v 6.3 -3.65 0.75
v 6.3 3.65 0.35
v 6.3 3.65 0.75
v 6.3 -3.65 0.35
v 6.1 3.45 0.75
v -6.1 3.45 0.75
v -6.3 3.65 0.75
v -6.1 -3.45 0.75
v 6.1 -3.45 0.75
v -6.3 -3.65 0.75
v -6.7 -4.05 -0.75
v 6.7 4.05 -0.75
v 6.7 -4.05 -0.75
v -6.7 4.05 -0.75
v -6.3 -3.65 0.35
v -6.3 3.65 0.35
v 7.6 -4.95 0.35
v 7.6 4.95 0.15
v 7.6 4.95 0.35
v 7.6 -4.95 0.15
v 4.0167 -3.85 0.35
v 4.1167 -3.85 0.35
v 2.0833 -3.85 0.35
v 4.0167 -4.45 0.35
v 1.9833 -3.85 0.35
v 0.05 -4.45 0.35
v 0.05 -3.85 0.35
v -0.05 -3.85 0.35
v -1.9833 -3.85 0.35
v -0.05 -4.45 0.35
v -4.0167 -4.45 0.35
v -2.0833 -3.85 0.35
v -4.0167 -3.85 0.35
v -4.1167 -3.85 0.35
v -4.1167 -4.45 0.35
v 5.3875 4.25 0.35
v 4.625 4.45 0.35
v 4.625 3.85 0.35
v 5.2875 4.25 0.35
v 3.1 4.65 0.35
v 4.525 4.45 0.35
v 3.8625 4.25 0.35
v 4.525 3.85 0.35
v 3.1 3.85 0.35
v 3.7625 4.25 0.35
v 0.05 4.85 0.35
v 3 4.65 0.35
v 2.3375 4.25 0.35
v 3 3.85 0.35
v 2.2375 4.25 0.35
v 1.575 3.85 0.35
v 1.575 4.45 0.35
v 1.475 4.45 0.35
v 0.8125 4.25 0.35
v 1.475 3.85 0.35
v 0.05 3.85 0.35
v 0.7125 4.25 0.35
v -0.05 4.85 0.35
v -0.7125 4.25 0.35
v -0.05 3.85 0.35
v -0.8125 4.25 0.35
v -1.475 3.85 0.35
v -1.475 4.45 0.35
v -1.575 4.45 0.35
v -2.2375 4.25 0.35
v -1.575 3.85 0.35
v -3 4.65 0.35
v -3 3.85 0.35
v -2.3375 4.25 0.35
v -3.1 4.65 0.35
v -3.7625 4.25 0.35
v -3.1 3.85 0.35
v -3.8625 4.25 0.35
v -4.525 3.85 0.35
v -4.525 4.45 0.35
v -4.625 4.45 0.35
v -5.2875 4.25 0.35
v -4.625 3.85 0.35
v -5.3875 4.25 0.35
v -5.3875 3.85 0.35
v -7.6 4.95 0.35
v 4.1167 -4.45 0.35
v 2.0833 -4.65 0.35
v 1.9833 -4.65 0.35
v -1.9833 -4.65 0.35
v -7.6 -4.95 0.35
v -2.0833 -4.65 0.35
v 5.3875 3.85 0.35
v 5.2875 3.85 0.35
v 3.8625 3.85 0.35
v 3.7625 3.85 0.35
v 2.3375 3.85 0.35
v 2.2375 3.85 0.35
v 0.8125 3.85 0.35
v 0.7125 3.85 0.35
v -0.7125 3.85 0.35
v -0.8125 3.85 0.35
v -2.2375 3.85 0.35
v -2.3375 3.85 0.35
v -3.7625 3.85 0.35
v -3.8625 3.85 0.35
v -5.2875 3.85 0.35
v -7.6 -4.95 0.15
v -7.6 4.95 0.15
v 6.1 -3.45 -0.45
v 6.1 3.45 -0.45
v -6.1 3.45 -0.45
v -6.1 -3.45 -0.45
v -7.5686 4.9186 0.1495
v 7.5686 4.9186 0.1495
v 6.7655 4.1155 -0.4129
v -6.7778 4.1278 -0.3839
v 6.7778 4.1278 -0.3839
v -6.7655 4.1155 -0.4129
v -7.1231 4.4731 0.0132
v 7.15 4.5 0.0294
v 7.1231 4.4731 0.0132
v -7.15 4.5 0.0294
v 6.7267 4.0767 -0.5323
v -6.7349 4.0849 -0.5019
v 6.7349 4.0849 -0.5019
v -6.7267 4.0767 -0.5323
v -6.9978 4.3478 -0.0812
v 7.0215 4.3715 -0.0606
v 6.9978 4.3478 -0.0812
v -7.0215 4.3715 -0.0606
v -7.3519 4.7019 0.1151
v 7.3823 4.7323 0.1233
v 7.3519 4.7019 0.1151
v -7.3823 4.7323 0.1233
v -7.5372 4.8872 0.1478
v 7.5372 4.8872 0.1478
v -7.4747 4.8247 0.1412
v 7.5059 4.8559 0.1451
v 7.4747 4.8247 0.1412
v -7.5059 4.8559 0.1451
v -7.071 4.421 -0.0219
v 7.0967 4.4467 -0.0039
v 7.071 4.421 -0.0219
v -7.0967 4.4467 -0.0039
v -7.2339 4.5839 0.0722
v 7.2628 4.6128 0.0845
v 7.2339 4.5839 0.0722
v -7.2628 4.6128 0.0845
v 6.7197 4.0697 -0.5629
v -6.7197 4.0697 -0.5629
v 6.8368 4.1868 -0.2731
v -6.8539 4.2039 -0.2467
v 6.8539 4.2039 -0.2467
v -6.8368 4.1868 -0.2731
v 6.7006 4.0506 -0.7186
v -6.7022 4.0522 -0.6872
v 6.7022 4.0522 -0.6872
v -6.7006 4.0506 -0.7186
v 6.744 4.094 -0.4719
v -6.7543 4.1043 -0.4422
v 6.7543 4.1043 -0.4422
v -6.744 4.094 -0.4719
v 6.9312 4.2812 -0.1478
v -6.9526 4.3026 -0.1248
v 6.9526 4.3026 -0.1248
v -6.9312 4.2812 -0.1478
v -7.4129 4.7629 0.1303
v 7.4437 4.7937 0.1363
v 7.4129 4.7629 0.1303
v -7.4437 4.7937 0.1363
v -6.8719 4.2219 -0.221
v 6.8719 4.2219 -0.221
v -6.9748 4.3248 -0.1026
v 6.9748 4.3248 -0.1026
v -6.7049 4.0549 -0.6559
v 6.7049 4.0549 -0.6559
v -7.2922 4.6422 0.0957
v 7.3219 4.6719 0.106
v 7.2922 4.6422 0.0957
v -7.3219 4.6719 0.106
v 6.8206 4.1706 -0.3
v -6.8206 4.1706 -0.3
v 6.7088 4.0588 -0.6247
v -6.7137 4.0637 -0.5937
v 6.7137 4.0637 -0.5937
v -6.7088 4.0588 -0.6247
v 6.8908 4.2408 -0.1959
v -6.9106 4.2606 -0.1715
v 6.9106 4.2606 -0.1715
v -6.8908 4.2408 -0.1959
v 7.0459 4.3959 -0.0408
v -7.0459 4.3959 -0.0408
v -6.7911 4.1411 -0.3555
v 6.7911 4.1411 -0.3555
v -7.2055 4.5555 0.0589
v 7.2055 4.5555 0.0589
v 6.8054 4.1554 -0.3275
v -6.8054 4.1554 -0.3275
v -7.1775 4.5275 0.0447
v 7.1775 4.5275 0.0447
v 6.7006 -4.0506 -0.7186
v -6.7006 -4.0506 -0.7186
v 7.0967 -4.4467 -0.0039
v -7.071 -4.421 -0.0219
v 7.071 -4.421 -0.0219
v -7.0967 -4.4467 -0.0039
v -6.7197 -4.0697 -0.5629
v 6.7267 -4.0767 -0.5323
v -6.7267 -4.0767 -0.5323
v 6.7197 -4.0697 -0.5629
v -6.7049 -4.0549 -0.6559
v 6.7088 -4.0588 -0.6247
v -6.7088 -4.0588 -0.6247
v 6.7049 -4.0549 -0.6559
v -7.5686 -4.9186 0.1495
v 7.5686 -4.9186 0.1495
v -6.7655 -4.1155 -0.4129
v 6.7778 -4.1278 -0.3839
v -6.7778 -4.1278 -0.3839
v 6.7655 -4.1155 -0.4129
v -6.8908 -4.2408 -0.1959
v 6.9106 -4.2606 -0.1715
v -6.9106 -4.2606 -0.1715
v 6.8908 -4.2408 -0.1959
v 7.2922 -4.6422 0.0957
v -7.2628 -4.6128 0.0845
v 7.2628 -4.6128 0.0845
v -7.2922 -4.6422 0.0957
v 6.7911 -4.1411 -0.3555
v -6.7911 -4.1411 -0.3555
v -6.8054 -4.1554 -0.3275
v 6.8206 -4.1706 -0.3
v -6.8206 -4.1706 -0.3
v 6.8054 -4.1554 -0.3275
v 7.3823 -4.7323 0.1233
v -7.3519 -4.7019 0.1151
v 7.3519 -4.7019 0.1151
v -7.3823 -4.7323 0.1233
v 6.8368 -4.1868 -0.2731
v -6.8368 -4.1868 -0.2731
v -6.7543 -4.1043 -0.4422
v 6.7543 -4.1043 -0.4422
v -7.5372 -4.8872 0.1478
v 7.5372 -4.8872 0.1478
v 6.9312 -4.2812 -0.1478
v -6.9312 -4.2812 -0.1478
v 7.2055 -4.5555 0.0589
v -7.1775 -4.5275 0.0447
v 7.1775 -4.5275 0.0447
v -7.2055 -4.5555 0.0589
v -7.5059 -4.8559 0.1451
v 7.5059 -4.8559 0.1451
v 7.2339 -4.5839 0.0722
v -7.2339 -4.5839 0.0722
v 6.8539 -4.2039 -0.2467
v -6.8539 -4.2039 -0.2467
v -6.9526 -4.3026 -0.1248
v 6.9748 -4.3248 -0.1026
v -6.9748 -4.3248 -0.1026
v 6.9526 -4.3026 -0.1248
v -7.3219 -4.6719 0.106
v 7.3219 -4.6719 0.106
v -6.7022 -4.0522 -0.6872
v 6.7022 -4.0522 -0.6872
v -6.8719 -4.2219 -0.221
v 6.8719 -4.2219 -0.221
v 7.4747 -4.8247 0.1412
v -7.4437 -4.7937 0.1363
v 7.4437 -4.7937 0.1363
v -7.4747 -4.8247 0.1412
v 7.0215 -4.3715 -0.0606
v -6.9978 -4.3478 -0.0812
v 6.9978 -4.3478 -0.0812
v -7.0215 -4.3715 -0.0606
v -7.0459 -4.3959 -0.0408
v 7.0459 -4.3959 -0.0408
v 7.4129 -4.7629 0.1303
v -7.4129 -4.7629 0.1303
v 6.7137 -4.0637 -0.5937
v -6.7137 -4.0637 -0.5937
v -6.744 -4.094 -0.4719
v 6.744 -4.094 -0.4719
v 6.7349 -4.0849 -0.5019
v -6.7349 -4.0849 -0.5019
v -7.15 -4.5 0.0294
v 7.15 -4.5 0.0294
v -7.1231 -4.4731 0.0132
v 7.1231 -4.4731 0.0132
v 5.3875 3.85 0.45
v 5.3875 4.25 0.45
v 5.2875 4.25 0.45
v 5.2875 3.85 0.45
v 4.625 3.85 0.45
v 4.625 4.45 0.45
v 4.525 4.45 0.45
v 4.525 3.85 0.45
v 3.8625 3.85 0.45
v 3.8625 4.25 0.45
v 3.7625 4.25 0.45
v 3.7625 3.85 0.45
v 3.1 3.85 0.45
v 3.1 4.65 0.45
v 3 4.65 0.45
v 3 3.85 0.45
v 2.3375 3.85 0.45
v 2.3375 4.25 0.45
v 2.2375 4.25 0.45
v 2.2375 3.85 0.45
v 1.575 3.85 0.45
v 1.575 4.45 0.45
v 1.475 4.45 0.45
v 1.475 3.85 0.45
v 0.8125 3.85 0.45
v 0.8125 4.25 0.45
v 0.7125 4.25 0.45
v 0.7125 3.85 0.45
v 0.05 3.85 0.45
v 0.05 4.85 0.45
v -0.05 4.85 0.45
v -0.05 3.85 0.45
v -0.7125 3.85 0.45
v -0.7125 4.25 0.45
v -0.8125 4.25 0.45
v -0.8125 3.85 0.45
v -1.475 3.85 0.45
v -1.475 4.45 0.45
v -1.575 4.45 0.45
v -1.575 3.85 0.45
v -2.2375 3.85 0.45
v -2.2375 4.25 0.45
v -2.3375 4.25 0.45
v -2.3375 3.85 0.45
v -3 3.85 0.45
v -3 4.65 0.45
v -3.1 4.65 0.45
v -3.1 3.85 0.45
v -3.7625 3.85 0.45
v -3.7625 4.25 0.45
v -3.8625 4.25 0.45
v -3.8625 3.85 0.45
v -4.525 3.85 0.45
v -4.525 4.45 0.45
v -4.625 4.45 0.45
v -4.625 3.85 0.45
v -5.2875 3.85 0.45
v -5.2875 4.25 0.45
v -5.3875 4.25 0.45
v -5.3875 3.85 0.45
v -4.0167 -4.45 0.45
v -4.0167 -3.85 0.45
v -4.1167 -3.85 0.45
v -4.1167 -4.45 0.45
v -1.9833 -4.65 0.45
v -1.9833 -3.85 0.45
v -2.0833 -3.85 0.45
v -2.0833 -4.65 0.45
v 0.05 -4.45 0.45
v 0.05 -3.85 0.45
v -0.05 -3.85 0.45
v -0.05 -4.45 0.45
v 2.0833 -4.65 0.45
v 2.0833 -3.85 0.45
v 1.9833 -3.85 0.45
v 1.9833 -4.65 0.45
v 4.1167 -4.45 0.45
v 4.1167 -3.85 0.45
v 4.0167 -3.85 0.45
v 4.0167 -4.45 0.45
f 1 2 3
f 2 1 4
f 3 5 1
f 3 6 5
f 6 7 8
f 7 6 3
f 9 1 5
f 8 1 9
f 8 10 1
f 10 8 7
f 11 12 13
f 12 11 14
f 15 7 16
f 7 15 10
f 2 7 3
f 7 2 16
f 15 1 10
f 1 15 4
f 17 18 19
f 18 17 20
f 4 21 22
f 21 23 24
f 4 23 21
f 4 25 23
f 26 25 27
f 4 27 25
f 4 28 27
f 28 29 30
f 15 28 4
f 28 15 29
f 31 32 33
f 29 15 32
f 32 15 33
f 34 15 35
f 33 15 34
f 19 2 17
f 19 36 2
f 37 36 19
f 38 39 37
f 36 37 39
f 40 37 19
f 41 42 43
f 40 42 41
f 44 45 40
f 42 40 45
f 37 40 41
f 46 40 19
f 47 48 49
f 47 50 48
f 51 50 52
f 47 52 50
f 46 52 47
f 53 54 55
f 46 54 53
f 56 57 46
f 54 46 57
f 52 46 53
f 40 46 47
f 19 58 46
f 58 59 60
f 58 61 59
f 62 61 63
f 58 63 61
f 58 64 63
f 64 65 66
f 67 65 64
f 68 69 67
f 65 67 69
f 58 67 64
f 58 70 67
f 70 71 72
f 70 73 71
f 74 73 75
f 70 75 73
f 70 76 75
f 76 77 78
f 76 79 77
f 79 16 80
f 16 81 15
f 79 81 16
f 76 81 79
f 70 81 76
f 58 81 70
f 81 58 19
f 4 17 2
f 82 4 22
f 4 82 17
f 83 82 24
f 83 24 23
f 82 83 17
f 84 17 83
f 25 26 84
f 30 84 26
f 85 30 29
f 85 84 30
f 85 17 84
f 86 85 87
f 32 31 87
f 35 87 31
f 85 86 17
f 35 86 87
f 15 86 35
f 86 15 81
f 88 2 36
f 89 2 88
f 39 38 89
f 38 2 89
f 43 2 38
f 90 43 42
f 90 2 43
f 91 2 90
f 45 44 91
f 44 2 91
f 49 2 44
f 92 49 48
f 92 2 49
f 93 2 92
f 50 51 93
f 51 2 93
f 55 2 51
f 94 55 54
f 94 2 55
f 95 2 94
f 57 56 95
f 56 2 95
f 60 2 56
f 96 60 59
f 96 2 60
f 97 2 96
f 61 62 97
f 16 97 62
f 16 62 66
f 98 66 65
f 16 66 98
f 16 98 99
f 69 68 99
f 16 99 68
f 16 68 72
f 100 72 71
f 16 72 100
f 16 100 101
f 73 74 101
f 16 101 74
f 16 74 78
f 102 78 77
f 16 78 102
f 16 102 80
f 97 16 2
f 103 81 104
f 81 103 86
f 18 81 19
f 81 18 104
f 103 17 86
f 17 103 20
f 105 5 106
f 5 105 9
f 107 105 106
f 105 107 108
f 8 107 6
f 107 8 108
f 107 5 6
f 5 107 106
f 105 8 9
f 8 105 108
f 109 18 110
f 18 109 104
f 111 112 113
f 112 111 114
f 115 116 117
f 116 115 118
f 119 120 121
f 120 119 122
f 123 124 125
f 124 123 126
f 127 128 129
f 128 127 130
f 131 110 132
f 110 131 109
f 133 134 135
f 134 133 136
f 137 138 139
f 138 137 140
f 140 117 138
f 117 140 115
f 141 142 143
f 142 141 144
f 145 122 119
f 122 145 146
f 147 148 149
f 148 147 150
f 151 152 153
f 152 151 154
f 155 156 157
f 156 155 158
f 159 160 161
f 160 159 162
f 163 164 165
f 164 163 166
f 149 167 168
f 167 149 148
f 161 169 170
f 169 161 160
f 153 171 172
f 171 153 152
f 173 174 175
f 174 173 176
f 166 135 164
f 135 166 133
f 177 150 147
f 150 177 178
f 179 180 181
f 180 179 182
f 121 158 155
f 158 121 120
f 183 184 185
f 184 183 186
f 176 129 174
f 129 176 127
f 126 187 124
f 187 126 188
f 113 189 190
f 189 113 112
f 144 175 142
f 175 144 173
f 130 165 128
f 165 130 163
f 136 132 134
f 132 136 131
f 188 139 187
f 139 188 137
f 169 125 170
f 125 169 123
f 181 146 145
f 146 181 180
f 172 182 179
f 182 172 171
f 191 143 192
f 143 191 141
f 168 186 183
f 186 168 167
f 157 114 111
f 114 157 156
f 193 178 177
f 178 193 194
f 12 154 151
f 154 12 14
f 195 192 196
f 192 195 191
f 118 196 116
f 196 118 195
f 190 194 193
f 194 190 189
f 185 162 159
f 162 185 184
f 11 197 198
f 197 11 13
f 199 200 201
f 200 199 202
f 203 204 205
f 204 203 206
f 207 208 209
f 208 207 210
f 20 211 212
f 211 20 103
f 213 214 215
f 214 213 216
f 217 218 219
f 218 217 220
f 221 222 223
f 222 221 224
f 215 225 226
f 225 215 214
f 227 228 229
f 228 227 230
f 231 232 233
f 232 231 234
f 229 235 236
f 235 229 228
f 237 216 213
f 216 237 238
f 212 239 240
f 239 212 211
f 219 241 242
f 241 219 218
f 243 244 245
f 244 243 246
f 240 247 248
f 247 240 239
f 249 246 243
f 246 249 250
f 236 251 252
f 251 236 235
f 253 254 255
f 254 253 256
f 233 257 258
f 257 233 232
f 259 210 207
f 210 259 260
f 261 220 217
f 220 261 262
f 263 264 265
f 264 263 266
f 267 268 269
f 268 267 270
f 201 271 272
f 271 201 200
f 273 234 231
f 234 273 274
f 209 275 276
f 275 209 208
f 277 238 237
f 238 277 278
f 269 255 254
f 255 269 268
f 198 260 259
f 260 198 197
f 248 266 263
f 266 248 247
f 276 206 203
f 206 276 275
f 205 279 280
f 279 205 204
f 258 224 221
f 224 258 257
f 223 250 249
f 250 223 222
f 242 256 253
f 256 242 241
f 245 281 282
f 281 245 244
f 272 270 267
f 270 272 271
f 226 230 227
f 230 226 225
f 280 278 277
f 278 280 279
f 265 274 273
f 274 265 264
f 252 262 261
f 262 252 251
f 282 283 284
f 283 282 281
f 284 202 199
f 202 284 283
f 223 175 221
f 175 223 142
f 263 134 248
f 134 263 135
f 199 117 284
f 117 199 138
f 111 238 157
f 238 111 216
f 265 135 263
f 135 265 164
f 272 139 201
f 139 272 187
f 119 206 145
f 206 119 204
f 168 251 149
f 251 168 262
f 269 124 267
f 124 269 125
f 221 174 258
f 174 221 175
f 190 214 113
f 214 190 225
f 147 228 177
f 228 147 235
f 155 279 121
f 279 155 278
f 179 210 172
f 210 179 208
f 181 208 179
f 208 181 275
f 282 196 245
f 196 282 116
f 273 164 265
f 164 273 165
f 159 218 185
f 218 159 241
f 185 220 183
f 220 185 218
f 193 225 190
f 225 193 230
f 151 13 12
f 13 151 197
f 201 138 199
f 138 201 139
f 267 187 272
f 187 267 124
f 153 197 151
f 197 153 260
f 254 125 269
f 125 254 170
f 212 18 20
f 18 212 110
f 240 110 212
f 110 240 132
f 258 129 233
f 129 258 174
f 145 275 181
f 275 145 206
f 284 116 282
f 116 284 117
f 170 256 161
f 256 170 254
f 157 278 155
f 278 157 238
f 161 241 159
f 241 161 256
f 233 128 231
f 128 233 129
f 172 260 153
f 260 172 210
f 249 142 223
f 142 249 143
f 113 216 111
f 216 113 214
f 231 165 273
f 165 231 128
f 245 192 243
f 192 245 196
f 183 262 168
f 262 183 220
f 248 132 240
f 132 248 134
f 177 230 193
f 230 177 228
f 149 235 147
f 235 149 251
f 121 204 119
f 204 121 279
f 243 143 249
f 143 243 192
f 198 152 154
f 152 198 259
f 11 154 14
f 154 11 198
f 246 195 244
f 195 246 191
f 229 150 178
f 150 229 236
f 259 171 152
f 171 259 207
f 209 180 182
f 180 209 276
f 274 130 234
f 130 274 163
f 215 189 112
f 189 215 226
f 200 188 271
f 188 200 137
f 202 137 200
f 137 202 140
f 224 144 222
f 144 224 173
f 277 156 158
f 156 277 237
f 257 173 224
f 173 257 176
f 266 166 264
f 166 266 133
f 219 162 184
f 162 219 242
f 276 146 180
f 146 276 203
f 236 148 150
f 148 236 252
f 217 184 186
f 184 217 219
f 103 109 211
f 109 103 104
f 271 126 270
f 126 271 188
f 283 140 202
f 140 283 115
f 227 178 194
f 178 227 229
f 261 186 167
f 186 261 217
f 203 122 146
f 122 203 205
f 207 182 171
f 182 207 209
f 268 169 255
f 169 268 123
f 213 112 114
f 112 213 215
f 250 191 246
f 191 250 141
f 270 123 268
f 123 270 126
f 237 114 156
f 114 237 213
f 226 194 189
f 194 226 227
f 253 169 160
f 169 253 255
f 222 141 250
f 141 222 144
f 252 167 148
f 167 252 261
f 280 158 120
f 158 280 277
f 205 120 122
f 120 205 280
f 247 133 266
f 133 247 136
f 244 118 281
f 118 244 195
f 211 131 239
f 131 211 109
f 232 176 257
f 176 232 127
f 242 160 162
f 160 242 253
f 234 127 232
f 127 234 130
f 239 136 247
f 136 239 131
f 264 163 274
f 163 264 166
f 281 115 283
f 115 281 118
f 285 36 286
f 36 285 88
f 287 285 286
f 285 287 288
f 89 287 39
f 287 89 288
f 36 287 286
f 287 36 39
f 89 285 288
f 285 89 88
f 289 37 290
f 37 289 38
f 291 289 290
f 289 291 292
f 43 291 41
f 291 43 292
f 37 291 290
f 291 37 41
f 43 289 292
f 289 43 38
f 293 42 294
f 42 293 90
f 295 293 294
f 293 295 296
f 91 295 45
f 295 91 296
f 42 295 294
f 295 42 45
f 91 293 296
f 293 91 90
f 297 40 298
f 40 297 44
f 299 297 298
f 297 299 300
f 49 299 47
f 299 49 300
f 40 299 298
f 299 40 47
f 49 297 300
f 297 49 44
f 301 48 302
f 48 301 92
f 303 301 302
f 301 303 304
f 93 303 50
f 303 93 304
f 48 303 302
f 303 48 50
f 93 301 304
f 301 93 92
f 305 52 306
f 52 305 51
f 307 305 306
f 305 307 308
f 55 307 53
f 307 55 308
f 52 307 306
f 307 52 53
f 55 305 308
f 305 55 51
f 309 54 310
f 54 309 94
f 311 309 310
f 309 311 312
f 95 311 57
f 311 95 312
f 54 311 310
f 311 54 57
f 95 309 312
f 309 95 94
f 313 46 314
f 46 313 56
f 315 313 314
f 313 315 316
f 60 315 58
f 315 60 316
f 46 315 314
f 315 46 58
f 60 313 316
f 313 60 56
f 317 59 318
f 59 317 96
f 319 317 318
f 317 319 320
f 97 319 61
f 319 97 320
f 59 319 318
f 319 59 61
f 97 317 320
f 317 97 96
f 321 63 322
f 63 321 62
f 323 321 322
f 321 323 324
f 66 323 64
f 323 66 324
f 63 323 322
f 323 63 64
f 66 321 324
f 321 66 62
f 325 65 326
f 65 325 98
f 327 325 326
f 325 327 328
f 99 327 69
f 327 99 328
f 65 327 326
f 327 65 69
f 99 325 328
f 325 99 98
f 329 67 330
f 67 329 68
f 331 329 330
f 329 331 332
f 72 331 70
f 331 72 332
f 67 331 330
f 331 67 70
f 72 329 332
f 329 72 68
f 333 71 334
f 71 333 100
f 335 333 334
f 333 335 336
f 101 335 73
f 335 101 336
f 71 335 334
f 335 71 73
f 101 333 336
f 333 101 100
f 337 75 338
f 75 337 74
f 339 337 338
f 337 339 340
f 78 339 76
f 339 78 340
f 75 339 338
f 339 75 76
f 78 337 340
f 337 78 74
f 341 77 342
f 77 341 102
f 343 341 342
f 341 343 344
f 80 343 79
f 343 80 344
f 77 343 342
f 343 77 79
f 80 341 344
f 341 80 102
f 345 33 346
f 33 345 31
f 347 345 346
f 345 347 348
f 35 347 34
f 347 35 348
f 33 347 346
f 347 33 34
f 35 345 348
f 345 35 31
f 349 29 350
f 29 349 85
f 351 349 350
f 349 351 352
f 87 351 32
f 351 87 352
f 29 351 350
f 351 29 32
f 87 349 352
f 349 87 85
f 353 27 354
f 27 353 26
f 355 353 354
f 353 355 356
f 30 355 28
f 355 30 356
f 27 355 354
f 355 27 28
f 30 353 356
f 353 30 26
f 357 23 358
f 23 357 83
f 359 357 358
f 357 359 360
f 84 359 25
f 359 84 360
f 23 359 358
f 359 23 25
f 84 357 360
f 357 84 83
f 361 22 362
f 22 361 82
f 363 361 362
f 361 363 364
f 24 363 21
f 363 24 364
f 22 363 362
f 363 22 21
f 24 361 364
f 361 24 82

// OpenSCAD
// in centimeters
brickWidth = 11.8;
brickLength = 6.5;
wiggleRoom = 0.4;
lipThickness = 0.2;
lipInnerHeight = 1.3;
outerLipHeight = 0.4;
borderWidth = 1.3;
tickWidth = 0.1;
tickHeight = 0.1;


// derived values
lipInnerWidth = brickWidth + wiggleRoom;
lipOuterWidth = lipInnerWidth + (2 * lipThickness);
lipInnerLength = brickLength + wiggleRoom;
lipOuterLength = lipInnerLength + (2 * lipThickness);
lipOuterHeight = lipInnerHeight + lipThickness;
borderOuterWidth = lipOuterWidth + (2 * borderWidth);
borderOuterLength = lipOuterLength + (2 * borderWidth);
echo("Max dimensions are ", borderOuterWidth, " by ", borderOuterLength);
baseHeight = (lipOuterHeight - outerLipHeight);
borderRadius = baseHeight - lipThickness;

difference() {
    union() {
        cube([lipOuterWidth, lipOuterLength, lipOuterHeight], true);
        translate([0, 0, -(lipOuterHeight - baseHeight) / 2]) {
            cube([borderOuterWidth, borderOuterLength, baseHeight], true);
        }

    }
 
    translate([0, 0, lipThickness]) {
        cube([lipInnerWidth, lipInnerLength, lipInnerHeight], true);
    }
    translate([0, borderOuterLength/2, -lipOuterHeight/2]) {
        rotate(a=[0,90,0]) {
            cylinder(h=borderOuterWidth, r=borderRadius, center=true, $fn=180);
        }
    }
    translate([0, -borderOuterLength/2, -lipOuterHeight/2]) {
        rotate(a=[0,90,0]) {
            cylinder(h=borderOuterWidth, r=borderRadius, center=true, $fn=180);
        }
    }
    translate([borderOuterWidth/2, 0, -lipOuterHeight/2]) {
        rotate(a=[90,0,0]) {
            cylinder(h=borderOuterLength, r=borderRadius, center=true, $fn=180);
        }
    }
    translate([-borderOuterWidth/2, 0, -lipOuterHeight/2]) {
        rotate(a=[90,0,0]) {
            cylinder(h=borderOuterLength, r=borderRadius, center=true, $fn=180);
        }
    }
}

module tick(x, tickLength) {
    xpos = (lipInnerWidth * (0.5 - x));
    translate([xpos - (tickWidth/2), (lipOuterLength / 2) + 0.2, baseHeight - (lipOuterHeight/2)]) {
        cube([tickWidth, tickLength, tickHeight], false);
    }
}

tick(1/16, 0.4);
tick(2/16, 0.6);
tick(3/16, 0.4);
tick(4/16, 0.8);
tick(5/16, 0.4);
tick(6/16, 0.6);
tick(7/16, 0.4);
tick(8/16, 1);
tick(9/16, 0.4);
tick(10/16, 0.6);
tick(11/16, 0.4);
tick(12/16, 0.8);
tick(13/16, 0.4);
tick(14/16, 0.6);
tick(15/16, 0.4);

module tick2(x, tickLength) {
    xpos = (lipInnerWidth * (x - 0.5));
    translate([xpos - (tickWidth/2), -(lipOuterLength / 2) - tickLength - 0.2, baseHeight - (lipOuterHeight/2)]) {
        cube([tickWidth, tickLength, tickHeight], false);
    }
}

tick2(1/6, 0.6);
tick2(2/6, 0.8);
tick2(3/6, 0.6);
tick2(4/6, 0.8);
tick2(5/6, 0.6);
